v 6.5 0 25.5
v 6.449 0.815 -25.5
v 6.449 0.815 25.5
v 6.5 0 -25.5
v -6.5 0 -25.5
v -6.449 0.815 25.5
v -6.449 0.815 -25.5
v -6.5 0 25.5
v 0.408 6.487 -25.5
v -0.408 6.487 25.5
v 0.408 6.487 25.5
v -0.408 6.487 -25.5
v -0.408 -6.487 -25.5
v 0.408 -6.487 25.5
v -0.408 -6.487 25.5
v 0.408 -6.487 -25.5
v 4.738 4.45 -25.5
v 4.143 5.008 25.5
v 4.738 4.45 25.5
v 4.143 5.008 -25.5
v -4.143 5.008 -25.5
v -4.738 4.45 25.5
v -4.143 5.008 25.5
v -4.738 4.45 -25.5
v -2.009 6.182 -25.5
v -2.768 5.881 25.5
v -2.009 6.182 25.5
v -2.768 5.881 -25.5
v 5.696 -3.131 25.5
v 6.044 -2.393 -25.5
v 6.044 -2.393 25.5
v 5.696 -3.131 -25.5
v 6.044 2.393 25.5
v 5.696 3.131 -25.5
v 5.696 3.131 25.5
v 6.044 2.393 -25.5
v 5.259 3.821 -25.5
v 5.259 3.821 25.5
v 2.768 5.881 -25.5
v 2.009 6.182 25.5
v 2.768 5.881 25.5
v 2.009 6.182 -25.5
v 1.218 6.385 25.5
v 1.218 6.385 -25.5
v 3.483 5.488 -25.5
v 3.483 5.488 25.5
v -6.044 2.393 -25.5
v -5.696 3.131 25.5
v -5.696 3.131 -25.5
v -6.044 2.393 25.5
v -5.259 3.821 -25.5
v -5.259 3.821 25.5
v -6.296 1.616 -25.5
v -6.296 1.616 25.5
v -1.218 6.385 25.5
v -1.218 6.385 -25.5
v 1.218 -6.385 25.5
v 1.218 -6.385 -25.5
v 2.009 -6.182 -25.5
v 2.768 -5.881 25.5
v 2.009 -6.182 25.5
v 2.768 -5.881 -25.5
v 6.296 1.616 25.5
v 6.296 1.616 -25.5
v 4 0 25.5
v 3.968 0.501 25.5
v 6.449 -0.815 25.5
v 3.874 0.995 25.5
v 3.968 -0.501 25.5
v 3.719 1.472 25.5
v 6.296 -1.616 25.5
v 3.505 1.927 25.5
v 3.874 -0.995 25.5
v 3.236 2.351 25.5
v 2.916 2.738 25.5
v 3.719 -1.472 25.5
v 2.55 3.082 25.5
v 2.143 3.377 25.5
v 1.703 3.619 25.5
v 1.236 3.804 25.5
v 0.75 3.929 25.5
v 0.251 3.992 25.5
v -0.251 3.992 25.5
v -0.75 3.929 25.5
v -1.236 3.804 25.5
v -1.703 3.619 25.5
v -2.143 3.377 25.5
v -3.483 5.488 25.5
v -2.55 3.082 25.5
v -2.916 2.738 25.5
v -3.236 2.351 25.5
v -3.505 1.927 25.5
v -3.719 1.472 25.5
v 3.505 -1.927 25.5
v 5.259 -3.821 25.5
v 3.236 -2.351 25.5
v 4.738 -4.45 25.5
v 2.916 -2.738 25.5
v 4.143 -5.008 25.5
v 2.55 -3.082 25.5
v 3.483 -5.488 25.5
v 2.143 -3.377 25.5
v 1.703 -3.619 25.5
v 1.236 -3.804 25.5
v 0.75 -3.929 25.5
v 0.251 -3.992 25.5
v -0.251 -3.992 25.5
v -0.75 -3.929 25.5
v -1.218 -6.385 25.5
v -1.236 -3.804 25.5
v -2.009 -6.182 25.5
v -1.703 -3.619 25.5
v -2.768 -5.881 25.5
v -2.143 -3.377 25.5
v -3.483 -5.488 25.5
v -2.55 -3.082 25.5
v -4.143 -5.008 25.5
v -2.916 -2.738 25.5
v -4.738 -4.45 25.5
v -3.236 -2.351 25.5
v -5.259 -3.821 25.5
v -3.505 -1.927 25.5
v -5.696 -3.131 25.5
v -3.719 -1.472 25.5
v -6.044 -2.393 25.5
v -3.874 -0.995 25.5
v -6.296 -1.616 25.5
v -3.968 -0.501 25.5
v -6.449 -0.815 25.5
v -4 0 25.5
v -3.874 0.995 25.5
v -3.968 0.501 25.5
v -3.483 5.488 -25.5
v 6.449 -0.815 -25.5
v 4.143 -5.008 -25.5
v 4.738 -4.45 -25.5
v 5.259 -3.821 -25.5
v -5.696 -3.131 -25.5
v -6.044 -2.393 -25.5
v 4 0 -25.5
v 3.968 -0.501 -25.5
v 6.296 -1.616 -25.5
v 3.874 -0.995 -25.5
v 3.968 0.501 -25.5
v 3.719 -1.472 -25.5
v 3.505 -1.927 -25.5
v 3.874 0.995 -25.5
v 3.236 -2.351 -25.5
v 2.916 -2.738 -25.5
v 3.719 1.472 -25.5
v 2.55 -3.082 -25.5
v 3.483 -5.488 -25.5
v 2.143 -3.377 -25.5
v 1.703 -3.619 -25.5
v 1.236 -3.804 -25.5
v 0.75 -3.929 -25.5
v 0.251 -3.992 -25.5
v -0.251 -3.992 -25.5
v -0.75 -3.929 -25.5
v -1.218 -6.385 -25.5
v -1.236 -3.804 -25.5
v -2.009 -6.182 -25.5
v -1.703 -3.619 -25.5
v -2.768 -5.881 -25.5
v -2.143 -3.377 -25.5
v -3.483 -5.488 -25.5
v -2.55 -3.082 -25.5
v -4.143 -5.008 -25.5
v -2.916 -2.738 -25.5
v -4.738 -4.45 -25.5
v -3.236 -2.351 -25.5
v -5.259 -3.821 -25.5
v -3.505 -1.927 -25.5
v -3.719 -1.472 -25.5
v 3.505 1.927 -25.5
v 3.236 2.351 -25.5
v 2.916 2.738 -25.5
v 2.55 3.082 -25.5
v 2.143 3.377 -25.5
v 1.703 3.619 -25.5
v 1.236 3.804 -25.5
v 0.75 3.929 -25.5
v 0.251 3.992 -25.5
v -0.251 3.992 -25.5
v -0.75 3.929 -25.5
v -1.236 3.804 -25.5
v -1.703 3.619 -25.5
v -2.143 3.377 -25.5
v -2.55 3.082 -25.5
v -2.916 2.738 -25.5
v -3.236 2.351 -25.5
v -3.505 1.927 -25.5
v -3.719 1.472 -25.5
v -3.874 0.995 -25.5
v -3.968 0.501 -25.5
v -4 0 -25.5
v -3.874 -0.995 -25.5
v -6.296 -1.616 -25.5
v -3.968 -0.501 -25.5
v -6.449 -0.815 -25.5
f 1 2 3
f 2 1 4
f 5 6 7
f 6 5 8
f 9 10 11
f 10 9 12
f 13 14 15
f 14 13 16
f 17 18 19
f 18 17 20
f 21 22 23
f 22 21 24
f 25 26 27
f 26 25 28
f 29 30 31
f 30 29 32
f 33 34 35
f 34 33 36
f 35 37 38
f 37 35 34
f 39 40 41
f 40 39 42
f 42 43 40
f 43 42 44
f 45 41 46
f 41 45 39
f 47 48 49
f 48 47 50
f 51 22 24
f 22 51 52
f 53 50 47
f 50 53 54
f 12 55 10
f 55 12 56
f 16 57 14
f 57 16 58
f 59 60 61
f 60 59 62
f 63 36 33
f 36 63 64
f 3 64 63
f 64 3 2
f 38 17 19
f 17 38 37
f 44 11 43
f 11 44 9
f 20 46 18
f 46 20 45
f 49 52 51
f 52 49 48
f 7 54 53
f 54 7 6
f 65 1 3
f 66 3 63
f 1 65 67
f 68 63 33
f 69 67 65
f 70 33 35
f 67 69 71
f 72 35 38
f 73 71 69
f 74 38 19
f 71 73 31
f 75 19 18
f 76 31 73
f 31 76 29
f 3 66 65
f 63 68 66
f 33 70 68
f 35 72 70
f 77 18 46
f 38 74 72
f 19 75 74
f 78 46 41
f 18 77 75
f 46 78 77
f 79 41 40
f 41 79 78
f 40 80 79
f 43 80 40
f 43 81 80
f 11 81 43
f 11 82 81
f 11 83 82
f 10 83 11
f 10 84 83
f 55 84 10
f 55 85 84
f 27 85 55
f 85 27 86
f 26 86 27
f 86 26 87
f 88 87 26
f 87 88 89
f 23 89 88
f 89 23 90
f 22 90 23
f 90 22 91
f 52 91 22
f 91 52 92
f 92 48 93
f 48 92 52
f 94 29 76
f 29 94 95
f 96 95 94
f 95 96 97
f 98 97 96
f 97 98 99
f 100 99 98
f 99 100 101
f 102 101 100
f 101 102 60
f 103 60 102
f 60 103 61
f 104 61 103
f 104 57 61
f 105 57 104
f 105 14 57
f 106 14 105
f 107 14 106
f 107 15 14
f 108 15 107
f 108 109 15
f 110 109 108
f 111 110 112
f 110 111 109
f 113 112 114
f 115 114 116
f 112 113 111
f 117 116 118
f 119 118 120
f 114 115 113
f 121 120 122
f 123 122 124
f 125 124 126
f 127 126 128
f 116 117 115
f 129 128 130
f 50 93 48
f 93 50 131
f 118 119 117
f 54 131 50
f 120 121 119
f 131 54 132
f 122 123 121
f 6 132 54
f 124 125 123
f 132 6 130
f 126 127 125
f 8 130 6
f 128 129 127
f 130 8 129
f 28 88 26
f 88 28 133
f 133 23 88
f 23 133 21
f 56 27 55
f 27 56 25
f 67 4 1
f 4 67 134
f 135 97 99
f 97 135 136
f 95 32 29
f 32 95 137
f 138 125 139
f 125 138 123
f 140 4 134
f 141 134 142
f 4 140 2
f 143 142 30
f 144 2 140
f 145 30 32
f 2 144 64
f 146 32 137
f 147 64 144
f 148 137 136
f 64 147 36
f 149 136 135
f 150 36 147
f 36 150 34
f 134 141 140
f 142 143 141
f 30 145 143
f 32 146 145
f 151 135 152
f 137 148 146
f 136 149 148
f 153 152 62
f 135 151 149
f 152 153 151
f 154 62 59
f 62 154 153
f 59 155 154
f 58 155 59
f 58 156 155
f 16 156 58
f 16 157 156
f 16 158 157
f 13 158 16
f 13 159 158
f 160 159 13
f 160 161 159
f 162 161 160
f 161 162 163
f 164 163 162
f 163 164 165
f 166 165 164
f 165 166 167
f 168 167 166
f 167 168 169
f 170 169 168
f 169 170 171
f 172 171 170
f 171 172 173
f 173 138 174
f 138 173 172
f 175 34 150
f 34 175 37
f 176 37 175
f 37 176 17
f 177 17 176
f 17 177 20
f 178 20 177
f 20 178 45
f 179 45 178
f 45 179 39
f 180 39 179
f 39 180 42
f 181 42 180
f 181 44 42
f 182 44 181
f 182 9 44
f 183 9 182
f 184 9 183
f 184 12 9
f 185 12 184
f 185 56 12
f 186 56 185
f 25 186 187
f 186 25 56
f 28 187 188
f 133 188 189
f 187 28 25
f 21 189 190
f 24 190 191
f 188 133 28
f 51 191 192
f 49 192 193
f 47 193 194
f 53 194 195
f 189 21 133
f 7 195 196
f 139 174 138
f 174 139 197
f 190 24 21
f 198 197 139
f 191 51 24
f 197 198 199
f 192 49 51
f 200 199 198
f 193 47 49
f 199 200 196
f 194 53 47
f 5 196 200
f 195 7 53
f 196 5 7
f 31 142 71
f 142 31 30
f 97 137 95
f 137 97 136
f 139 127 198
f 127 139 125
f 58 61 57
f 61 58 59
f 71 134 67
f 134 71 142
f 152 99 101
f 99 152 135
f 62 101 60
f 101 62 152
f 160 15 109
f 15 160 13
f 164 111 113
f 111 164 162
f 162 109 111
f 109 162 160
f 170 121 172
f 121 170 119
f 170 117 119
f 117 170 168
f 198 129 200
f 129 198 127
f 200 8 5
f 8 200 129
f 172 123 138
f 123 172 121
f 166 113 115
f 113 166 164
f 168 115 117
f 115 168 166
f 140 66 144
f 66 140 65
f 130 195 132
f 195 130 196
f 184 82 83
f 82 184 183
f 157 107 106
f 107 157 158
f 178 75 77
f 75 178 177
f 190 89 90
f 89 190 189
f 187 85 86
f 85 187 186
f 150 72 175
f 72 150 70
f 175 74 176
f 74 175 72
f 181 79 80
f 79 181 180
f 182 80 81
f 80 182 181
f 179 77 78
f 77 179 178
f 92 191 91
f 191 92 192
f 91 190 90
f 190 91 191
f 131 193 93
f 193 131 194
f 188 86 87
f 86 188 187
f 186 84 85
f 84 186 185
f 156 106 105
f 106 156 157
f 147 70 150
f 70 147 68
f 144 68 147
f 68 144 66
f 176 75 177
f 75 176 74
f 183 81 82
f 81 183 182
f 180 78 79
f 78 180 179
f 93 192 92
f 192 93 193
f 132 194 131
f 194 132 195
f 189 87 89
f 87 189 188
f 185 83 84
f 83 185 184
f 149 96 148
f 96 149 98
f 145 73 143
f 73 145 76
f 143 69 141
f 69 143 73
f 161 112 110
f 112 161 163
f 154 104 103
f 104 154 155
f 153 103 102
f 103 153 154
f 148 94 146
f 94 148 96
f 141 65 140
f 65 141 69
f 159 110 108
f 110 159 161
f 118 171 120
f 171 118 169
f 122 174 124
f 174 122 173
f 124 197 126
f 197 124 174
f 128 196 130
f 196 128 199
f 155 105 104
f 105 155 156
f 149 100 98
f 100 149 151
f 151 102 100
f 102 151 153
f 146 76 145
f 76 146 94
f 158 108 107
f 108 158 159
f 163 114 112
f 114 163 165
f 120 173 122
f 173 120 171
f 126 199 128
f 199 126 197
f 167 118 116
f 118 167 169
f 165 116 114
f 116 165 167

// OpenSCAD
$fn = 50;


difference() {
	union() {
		translate(v = [0, 0, -25.5000000000]) {
			cylinder(h = 51, r = 6.5000000000);
		}
	}
	union() {
		translate(v = [0, 0, -100.0000000000]) {
			cylinder(h = 200, r = 4);
		}
	}
}
